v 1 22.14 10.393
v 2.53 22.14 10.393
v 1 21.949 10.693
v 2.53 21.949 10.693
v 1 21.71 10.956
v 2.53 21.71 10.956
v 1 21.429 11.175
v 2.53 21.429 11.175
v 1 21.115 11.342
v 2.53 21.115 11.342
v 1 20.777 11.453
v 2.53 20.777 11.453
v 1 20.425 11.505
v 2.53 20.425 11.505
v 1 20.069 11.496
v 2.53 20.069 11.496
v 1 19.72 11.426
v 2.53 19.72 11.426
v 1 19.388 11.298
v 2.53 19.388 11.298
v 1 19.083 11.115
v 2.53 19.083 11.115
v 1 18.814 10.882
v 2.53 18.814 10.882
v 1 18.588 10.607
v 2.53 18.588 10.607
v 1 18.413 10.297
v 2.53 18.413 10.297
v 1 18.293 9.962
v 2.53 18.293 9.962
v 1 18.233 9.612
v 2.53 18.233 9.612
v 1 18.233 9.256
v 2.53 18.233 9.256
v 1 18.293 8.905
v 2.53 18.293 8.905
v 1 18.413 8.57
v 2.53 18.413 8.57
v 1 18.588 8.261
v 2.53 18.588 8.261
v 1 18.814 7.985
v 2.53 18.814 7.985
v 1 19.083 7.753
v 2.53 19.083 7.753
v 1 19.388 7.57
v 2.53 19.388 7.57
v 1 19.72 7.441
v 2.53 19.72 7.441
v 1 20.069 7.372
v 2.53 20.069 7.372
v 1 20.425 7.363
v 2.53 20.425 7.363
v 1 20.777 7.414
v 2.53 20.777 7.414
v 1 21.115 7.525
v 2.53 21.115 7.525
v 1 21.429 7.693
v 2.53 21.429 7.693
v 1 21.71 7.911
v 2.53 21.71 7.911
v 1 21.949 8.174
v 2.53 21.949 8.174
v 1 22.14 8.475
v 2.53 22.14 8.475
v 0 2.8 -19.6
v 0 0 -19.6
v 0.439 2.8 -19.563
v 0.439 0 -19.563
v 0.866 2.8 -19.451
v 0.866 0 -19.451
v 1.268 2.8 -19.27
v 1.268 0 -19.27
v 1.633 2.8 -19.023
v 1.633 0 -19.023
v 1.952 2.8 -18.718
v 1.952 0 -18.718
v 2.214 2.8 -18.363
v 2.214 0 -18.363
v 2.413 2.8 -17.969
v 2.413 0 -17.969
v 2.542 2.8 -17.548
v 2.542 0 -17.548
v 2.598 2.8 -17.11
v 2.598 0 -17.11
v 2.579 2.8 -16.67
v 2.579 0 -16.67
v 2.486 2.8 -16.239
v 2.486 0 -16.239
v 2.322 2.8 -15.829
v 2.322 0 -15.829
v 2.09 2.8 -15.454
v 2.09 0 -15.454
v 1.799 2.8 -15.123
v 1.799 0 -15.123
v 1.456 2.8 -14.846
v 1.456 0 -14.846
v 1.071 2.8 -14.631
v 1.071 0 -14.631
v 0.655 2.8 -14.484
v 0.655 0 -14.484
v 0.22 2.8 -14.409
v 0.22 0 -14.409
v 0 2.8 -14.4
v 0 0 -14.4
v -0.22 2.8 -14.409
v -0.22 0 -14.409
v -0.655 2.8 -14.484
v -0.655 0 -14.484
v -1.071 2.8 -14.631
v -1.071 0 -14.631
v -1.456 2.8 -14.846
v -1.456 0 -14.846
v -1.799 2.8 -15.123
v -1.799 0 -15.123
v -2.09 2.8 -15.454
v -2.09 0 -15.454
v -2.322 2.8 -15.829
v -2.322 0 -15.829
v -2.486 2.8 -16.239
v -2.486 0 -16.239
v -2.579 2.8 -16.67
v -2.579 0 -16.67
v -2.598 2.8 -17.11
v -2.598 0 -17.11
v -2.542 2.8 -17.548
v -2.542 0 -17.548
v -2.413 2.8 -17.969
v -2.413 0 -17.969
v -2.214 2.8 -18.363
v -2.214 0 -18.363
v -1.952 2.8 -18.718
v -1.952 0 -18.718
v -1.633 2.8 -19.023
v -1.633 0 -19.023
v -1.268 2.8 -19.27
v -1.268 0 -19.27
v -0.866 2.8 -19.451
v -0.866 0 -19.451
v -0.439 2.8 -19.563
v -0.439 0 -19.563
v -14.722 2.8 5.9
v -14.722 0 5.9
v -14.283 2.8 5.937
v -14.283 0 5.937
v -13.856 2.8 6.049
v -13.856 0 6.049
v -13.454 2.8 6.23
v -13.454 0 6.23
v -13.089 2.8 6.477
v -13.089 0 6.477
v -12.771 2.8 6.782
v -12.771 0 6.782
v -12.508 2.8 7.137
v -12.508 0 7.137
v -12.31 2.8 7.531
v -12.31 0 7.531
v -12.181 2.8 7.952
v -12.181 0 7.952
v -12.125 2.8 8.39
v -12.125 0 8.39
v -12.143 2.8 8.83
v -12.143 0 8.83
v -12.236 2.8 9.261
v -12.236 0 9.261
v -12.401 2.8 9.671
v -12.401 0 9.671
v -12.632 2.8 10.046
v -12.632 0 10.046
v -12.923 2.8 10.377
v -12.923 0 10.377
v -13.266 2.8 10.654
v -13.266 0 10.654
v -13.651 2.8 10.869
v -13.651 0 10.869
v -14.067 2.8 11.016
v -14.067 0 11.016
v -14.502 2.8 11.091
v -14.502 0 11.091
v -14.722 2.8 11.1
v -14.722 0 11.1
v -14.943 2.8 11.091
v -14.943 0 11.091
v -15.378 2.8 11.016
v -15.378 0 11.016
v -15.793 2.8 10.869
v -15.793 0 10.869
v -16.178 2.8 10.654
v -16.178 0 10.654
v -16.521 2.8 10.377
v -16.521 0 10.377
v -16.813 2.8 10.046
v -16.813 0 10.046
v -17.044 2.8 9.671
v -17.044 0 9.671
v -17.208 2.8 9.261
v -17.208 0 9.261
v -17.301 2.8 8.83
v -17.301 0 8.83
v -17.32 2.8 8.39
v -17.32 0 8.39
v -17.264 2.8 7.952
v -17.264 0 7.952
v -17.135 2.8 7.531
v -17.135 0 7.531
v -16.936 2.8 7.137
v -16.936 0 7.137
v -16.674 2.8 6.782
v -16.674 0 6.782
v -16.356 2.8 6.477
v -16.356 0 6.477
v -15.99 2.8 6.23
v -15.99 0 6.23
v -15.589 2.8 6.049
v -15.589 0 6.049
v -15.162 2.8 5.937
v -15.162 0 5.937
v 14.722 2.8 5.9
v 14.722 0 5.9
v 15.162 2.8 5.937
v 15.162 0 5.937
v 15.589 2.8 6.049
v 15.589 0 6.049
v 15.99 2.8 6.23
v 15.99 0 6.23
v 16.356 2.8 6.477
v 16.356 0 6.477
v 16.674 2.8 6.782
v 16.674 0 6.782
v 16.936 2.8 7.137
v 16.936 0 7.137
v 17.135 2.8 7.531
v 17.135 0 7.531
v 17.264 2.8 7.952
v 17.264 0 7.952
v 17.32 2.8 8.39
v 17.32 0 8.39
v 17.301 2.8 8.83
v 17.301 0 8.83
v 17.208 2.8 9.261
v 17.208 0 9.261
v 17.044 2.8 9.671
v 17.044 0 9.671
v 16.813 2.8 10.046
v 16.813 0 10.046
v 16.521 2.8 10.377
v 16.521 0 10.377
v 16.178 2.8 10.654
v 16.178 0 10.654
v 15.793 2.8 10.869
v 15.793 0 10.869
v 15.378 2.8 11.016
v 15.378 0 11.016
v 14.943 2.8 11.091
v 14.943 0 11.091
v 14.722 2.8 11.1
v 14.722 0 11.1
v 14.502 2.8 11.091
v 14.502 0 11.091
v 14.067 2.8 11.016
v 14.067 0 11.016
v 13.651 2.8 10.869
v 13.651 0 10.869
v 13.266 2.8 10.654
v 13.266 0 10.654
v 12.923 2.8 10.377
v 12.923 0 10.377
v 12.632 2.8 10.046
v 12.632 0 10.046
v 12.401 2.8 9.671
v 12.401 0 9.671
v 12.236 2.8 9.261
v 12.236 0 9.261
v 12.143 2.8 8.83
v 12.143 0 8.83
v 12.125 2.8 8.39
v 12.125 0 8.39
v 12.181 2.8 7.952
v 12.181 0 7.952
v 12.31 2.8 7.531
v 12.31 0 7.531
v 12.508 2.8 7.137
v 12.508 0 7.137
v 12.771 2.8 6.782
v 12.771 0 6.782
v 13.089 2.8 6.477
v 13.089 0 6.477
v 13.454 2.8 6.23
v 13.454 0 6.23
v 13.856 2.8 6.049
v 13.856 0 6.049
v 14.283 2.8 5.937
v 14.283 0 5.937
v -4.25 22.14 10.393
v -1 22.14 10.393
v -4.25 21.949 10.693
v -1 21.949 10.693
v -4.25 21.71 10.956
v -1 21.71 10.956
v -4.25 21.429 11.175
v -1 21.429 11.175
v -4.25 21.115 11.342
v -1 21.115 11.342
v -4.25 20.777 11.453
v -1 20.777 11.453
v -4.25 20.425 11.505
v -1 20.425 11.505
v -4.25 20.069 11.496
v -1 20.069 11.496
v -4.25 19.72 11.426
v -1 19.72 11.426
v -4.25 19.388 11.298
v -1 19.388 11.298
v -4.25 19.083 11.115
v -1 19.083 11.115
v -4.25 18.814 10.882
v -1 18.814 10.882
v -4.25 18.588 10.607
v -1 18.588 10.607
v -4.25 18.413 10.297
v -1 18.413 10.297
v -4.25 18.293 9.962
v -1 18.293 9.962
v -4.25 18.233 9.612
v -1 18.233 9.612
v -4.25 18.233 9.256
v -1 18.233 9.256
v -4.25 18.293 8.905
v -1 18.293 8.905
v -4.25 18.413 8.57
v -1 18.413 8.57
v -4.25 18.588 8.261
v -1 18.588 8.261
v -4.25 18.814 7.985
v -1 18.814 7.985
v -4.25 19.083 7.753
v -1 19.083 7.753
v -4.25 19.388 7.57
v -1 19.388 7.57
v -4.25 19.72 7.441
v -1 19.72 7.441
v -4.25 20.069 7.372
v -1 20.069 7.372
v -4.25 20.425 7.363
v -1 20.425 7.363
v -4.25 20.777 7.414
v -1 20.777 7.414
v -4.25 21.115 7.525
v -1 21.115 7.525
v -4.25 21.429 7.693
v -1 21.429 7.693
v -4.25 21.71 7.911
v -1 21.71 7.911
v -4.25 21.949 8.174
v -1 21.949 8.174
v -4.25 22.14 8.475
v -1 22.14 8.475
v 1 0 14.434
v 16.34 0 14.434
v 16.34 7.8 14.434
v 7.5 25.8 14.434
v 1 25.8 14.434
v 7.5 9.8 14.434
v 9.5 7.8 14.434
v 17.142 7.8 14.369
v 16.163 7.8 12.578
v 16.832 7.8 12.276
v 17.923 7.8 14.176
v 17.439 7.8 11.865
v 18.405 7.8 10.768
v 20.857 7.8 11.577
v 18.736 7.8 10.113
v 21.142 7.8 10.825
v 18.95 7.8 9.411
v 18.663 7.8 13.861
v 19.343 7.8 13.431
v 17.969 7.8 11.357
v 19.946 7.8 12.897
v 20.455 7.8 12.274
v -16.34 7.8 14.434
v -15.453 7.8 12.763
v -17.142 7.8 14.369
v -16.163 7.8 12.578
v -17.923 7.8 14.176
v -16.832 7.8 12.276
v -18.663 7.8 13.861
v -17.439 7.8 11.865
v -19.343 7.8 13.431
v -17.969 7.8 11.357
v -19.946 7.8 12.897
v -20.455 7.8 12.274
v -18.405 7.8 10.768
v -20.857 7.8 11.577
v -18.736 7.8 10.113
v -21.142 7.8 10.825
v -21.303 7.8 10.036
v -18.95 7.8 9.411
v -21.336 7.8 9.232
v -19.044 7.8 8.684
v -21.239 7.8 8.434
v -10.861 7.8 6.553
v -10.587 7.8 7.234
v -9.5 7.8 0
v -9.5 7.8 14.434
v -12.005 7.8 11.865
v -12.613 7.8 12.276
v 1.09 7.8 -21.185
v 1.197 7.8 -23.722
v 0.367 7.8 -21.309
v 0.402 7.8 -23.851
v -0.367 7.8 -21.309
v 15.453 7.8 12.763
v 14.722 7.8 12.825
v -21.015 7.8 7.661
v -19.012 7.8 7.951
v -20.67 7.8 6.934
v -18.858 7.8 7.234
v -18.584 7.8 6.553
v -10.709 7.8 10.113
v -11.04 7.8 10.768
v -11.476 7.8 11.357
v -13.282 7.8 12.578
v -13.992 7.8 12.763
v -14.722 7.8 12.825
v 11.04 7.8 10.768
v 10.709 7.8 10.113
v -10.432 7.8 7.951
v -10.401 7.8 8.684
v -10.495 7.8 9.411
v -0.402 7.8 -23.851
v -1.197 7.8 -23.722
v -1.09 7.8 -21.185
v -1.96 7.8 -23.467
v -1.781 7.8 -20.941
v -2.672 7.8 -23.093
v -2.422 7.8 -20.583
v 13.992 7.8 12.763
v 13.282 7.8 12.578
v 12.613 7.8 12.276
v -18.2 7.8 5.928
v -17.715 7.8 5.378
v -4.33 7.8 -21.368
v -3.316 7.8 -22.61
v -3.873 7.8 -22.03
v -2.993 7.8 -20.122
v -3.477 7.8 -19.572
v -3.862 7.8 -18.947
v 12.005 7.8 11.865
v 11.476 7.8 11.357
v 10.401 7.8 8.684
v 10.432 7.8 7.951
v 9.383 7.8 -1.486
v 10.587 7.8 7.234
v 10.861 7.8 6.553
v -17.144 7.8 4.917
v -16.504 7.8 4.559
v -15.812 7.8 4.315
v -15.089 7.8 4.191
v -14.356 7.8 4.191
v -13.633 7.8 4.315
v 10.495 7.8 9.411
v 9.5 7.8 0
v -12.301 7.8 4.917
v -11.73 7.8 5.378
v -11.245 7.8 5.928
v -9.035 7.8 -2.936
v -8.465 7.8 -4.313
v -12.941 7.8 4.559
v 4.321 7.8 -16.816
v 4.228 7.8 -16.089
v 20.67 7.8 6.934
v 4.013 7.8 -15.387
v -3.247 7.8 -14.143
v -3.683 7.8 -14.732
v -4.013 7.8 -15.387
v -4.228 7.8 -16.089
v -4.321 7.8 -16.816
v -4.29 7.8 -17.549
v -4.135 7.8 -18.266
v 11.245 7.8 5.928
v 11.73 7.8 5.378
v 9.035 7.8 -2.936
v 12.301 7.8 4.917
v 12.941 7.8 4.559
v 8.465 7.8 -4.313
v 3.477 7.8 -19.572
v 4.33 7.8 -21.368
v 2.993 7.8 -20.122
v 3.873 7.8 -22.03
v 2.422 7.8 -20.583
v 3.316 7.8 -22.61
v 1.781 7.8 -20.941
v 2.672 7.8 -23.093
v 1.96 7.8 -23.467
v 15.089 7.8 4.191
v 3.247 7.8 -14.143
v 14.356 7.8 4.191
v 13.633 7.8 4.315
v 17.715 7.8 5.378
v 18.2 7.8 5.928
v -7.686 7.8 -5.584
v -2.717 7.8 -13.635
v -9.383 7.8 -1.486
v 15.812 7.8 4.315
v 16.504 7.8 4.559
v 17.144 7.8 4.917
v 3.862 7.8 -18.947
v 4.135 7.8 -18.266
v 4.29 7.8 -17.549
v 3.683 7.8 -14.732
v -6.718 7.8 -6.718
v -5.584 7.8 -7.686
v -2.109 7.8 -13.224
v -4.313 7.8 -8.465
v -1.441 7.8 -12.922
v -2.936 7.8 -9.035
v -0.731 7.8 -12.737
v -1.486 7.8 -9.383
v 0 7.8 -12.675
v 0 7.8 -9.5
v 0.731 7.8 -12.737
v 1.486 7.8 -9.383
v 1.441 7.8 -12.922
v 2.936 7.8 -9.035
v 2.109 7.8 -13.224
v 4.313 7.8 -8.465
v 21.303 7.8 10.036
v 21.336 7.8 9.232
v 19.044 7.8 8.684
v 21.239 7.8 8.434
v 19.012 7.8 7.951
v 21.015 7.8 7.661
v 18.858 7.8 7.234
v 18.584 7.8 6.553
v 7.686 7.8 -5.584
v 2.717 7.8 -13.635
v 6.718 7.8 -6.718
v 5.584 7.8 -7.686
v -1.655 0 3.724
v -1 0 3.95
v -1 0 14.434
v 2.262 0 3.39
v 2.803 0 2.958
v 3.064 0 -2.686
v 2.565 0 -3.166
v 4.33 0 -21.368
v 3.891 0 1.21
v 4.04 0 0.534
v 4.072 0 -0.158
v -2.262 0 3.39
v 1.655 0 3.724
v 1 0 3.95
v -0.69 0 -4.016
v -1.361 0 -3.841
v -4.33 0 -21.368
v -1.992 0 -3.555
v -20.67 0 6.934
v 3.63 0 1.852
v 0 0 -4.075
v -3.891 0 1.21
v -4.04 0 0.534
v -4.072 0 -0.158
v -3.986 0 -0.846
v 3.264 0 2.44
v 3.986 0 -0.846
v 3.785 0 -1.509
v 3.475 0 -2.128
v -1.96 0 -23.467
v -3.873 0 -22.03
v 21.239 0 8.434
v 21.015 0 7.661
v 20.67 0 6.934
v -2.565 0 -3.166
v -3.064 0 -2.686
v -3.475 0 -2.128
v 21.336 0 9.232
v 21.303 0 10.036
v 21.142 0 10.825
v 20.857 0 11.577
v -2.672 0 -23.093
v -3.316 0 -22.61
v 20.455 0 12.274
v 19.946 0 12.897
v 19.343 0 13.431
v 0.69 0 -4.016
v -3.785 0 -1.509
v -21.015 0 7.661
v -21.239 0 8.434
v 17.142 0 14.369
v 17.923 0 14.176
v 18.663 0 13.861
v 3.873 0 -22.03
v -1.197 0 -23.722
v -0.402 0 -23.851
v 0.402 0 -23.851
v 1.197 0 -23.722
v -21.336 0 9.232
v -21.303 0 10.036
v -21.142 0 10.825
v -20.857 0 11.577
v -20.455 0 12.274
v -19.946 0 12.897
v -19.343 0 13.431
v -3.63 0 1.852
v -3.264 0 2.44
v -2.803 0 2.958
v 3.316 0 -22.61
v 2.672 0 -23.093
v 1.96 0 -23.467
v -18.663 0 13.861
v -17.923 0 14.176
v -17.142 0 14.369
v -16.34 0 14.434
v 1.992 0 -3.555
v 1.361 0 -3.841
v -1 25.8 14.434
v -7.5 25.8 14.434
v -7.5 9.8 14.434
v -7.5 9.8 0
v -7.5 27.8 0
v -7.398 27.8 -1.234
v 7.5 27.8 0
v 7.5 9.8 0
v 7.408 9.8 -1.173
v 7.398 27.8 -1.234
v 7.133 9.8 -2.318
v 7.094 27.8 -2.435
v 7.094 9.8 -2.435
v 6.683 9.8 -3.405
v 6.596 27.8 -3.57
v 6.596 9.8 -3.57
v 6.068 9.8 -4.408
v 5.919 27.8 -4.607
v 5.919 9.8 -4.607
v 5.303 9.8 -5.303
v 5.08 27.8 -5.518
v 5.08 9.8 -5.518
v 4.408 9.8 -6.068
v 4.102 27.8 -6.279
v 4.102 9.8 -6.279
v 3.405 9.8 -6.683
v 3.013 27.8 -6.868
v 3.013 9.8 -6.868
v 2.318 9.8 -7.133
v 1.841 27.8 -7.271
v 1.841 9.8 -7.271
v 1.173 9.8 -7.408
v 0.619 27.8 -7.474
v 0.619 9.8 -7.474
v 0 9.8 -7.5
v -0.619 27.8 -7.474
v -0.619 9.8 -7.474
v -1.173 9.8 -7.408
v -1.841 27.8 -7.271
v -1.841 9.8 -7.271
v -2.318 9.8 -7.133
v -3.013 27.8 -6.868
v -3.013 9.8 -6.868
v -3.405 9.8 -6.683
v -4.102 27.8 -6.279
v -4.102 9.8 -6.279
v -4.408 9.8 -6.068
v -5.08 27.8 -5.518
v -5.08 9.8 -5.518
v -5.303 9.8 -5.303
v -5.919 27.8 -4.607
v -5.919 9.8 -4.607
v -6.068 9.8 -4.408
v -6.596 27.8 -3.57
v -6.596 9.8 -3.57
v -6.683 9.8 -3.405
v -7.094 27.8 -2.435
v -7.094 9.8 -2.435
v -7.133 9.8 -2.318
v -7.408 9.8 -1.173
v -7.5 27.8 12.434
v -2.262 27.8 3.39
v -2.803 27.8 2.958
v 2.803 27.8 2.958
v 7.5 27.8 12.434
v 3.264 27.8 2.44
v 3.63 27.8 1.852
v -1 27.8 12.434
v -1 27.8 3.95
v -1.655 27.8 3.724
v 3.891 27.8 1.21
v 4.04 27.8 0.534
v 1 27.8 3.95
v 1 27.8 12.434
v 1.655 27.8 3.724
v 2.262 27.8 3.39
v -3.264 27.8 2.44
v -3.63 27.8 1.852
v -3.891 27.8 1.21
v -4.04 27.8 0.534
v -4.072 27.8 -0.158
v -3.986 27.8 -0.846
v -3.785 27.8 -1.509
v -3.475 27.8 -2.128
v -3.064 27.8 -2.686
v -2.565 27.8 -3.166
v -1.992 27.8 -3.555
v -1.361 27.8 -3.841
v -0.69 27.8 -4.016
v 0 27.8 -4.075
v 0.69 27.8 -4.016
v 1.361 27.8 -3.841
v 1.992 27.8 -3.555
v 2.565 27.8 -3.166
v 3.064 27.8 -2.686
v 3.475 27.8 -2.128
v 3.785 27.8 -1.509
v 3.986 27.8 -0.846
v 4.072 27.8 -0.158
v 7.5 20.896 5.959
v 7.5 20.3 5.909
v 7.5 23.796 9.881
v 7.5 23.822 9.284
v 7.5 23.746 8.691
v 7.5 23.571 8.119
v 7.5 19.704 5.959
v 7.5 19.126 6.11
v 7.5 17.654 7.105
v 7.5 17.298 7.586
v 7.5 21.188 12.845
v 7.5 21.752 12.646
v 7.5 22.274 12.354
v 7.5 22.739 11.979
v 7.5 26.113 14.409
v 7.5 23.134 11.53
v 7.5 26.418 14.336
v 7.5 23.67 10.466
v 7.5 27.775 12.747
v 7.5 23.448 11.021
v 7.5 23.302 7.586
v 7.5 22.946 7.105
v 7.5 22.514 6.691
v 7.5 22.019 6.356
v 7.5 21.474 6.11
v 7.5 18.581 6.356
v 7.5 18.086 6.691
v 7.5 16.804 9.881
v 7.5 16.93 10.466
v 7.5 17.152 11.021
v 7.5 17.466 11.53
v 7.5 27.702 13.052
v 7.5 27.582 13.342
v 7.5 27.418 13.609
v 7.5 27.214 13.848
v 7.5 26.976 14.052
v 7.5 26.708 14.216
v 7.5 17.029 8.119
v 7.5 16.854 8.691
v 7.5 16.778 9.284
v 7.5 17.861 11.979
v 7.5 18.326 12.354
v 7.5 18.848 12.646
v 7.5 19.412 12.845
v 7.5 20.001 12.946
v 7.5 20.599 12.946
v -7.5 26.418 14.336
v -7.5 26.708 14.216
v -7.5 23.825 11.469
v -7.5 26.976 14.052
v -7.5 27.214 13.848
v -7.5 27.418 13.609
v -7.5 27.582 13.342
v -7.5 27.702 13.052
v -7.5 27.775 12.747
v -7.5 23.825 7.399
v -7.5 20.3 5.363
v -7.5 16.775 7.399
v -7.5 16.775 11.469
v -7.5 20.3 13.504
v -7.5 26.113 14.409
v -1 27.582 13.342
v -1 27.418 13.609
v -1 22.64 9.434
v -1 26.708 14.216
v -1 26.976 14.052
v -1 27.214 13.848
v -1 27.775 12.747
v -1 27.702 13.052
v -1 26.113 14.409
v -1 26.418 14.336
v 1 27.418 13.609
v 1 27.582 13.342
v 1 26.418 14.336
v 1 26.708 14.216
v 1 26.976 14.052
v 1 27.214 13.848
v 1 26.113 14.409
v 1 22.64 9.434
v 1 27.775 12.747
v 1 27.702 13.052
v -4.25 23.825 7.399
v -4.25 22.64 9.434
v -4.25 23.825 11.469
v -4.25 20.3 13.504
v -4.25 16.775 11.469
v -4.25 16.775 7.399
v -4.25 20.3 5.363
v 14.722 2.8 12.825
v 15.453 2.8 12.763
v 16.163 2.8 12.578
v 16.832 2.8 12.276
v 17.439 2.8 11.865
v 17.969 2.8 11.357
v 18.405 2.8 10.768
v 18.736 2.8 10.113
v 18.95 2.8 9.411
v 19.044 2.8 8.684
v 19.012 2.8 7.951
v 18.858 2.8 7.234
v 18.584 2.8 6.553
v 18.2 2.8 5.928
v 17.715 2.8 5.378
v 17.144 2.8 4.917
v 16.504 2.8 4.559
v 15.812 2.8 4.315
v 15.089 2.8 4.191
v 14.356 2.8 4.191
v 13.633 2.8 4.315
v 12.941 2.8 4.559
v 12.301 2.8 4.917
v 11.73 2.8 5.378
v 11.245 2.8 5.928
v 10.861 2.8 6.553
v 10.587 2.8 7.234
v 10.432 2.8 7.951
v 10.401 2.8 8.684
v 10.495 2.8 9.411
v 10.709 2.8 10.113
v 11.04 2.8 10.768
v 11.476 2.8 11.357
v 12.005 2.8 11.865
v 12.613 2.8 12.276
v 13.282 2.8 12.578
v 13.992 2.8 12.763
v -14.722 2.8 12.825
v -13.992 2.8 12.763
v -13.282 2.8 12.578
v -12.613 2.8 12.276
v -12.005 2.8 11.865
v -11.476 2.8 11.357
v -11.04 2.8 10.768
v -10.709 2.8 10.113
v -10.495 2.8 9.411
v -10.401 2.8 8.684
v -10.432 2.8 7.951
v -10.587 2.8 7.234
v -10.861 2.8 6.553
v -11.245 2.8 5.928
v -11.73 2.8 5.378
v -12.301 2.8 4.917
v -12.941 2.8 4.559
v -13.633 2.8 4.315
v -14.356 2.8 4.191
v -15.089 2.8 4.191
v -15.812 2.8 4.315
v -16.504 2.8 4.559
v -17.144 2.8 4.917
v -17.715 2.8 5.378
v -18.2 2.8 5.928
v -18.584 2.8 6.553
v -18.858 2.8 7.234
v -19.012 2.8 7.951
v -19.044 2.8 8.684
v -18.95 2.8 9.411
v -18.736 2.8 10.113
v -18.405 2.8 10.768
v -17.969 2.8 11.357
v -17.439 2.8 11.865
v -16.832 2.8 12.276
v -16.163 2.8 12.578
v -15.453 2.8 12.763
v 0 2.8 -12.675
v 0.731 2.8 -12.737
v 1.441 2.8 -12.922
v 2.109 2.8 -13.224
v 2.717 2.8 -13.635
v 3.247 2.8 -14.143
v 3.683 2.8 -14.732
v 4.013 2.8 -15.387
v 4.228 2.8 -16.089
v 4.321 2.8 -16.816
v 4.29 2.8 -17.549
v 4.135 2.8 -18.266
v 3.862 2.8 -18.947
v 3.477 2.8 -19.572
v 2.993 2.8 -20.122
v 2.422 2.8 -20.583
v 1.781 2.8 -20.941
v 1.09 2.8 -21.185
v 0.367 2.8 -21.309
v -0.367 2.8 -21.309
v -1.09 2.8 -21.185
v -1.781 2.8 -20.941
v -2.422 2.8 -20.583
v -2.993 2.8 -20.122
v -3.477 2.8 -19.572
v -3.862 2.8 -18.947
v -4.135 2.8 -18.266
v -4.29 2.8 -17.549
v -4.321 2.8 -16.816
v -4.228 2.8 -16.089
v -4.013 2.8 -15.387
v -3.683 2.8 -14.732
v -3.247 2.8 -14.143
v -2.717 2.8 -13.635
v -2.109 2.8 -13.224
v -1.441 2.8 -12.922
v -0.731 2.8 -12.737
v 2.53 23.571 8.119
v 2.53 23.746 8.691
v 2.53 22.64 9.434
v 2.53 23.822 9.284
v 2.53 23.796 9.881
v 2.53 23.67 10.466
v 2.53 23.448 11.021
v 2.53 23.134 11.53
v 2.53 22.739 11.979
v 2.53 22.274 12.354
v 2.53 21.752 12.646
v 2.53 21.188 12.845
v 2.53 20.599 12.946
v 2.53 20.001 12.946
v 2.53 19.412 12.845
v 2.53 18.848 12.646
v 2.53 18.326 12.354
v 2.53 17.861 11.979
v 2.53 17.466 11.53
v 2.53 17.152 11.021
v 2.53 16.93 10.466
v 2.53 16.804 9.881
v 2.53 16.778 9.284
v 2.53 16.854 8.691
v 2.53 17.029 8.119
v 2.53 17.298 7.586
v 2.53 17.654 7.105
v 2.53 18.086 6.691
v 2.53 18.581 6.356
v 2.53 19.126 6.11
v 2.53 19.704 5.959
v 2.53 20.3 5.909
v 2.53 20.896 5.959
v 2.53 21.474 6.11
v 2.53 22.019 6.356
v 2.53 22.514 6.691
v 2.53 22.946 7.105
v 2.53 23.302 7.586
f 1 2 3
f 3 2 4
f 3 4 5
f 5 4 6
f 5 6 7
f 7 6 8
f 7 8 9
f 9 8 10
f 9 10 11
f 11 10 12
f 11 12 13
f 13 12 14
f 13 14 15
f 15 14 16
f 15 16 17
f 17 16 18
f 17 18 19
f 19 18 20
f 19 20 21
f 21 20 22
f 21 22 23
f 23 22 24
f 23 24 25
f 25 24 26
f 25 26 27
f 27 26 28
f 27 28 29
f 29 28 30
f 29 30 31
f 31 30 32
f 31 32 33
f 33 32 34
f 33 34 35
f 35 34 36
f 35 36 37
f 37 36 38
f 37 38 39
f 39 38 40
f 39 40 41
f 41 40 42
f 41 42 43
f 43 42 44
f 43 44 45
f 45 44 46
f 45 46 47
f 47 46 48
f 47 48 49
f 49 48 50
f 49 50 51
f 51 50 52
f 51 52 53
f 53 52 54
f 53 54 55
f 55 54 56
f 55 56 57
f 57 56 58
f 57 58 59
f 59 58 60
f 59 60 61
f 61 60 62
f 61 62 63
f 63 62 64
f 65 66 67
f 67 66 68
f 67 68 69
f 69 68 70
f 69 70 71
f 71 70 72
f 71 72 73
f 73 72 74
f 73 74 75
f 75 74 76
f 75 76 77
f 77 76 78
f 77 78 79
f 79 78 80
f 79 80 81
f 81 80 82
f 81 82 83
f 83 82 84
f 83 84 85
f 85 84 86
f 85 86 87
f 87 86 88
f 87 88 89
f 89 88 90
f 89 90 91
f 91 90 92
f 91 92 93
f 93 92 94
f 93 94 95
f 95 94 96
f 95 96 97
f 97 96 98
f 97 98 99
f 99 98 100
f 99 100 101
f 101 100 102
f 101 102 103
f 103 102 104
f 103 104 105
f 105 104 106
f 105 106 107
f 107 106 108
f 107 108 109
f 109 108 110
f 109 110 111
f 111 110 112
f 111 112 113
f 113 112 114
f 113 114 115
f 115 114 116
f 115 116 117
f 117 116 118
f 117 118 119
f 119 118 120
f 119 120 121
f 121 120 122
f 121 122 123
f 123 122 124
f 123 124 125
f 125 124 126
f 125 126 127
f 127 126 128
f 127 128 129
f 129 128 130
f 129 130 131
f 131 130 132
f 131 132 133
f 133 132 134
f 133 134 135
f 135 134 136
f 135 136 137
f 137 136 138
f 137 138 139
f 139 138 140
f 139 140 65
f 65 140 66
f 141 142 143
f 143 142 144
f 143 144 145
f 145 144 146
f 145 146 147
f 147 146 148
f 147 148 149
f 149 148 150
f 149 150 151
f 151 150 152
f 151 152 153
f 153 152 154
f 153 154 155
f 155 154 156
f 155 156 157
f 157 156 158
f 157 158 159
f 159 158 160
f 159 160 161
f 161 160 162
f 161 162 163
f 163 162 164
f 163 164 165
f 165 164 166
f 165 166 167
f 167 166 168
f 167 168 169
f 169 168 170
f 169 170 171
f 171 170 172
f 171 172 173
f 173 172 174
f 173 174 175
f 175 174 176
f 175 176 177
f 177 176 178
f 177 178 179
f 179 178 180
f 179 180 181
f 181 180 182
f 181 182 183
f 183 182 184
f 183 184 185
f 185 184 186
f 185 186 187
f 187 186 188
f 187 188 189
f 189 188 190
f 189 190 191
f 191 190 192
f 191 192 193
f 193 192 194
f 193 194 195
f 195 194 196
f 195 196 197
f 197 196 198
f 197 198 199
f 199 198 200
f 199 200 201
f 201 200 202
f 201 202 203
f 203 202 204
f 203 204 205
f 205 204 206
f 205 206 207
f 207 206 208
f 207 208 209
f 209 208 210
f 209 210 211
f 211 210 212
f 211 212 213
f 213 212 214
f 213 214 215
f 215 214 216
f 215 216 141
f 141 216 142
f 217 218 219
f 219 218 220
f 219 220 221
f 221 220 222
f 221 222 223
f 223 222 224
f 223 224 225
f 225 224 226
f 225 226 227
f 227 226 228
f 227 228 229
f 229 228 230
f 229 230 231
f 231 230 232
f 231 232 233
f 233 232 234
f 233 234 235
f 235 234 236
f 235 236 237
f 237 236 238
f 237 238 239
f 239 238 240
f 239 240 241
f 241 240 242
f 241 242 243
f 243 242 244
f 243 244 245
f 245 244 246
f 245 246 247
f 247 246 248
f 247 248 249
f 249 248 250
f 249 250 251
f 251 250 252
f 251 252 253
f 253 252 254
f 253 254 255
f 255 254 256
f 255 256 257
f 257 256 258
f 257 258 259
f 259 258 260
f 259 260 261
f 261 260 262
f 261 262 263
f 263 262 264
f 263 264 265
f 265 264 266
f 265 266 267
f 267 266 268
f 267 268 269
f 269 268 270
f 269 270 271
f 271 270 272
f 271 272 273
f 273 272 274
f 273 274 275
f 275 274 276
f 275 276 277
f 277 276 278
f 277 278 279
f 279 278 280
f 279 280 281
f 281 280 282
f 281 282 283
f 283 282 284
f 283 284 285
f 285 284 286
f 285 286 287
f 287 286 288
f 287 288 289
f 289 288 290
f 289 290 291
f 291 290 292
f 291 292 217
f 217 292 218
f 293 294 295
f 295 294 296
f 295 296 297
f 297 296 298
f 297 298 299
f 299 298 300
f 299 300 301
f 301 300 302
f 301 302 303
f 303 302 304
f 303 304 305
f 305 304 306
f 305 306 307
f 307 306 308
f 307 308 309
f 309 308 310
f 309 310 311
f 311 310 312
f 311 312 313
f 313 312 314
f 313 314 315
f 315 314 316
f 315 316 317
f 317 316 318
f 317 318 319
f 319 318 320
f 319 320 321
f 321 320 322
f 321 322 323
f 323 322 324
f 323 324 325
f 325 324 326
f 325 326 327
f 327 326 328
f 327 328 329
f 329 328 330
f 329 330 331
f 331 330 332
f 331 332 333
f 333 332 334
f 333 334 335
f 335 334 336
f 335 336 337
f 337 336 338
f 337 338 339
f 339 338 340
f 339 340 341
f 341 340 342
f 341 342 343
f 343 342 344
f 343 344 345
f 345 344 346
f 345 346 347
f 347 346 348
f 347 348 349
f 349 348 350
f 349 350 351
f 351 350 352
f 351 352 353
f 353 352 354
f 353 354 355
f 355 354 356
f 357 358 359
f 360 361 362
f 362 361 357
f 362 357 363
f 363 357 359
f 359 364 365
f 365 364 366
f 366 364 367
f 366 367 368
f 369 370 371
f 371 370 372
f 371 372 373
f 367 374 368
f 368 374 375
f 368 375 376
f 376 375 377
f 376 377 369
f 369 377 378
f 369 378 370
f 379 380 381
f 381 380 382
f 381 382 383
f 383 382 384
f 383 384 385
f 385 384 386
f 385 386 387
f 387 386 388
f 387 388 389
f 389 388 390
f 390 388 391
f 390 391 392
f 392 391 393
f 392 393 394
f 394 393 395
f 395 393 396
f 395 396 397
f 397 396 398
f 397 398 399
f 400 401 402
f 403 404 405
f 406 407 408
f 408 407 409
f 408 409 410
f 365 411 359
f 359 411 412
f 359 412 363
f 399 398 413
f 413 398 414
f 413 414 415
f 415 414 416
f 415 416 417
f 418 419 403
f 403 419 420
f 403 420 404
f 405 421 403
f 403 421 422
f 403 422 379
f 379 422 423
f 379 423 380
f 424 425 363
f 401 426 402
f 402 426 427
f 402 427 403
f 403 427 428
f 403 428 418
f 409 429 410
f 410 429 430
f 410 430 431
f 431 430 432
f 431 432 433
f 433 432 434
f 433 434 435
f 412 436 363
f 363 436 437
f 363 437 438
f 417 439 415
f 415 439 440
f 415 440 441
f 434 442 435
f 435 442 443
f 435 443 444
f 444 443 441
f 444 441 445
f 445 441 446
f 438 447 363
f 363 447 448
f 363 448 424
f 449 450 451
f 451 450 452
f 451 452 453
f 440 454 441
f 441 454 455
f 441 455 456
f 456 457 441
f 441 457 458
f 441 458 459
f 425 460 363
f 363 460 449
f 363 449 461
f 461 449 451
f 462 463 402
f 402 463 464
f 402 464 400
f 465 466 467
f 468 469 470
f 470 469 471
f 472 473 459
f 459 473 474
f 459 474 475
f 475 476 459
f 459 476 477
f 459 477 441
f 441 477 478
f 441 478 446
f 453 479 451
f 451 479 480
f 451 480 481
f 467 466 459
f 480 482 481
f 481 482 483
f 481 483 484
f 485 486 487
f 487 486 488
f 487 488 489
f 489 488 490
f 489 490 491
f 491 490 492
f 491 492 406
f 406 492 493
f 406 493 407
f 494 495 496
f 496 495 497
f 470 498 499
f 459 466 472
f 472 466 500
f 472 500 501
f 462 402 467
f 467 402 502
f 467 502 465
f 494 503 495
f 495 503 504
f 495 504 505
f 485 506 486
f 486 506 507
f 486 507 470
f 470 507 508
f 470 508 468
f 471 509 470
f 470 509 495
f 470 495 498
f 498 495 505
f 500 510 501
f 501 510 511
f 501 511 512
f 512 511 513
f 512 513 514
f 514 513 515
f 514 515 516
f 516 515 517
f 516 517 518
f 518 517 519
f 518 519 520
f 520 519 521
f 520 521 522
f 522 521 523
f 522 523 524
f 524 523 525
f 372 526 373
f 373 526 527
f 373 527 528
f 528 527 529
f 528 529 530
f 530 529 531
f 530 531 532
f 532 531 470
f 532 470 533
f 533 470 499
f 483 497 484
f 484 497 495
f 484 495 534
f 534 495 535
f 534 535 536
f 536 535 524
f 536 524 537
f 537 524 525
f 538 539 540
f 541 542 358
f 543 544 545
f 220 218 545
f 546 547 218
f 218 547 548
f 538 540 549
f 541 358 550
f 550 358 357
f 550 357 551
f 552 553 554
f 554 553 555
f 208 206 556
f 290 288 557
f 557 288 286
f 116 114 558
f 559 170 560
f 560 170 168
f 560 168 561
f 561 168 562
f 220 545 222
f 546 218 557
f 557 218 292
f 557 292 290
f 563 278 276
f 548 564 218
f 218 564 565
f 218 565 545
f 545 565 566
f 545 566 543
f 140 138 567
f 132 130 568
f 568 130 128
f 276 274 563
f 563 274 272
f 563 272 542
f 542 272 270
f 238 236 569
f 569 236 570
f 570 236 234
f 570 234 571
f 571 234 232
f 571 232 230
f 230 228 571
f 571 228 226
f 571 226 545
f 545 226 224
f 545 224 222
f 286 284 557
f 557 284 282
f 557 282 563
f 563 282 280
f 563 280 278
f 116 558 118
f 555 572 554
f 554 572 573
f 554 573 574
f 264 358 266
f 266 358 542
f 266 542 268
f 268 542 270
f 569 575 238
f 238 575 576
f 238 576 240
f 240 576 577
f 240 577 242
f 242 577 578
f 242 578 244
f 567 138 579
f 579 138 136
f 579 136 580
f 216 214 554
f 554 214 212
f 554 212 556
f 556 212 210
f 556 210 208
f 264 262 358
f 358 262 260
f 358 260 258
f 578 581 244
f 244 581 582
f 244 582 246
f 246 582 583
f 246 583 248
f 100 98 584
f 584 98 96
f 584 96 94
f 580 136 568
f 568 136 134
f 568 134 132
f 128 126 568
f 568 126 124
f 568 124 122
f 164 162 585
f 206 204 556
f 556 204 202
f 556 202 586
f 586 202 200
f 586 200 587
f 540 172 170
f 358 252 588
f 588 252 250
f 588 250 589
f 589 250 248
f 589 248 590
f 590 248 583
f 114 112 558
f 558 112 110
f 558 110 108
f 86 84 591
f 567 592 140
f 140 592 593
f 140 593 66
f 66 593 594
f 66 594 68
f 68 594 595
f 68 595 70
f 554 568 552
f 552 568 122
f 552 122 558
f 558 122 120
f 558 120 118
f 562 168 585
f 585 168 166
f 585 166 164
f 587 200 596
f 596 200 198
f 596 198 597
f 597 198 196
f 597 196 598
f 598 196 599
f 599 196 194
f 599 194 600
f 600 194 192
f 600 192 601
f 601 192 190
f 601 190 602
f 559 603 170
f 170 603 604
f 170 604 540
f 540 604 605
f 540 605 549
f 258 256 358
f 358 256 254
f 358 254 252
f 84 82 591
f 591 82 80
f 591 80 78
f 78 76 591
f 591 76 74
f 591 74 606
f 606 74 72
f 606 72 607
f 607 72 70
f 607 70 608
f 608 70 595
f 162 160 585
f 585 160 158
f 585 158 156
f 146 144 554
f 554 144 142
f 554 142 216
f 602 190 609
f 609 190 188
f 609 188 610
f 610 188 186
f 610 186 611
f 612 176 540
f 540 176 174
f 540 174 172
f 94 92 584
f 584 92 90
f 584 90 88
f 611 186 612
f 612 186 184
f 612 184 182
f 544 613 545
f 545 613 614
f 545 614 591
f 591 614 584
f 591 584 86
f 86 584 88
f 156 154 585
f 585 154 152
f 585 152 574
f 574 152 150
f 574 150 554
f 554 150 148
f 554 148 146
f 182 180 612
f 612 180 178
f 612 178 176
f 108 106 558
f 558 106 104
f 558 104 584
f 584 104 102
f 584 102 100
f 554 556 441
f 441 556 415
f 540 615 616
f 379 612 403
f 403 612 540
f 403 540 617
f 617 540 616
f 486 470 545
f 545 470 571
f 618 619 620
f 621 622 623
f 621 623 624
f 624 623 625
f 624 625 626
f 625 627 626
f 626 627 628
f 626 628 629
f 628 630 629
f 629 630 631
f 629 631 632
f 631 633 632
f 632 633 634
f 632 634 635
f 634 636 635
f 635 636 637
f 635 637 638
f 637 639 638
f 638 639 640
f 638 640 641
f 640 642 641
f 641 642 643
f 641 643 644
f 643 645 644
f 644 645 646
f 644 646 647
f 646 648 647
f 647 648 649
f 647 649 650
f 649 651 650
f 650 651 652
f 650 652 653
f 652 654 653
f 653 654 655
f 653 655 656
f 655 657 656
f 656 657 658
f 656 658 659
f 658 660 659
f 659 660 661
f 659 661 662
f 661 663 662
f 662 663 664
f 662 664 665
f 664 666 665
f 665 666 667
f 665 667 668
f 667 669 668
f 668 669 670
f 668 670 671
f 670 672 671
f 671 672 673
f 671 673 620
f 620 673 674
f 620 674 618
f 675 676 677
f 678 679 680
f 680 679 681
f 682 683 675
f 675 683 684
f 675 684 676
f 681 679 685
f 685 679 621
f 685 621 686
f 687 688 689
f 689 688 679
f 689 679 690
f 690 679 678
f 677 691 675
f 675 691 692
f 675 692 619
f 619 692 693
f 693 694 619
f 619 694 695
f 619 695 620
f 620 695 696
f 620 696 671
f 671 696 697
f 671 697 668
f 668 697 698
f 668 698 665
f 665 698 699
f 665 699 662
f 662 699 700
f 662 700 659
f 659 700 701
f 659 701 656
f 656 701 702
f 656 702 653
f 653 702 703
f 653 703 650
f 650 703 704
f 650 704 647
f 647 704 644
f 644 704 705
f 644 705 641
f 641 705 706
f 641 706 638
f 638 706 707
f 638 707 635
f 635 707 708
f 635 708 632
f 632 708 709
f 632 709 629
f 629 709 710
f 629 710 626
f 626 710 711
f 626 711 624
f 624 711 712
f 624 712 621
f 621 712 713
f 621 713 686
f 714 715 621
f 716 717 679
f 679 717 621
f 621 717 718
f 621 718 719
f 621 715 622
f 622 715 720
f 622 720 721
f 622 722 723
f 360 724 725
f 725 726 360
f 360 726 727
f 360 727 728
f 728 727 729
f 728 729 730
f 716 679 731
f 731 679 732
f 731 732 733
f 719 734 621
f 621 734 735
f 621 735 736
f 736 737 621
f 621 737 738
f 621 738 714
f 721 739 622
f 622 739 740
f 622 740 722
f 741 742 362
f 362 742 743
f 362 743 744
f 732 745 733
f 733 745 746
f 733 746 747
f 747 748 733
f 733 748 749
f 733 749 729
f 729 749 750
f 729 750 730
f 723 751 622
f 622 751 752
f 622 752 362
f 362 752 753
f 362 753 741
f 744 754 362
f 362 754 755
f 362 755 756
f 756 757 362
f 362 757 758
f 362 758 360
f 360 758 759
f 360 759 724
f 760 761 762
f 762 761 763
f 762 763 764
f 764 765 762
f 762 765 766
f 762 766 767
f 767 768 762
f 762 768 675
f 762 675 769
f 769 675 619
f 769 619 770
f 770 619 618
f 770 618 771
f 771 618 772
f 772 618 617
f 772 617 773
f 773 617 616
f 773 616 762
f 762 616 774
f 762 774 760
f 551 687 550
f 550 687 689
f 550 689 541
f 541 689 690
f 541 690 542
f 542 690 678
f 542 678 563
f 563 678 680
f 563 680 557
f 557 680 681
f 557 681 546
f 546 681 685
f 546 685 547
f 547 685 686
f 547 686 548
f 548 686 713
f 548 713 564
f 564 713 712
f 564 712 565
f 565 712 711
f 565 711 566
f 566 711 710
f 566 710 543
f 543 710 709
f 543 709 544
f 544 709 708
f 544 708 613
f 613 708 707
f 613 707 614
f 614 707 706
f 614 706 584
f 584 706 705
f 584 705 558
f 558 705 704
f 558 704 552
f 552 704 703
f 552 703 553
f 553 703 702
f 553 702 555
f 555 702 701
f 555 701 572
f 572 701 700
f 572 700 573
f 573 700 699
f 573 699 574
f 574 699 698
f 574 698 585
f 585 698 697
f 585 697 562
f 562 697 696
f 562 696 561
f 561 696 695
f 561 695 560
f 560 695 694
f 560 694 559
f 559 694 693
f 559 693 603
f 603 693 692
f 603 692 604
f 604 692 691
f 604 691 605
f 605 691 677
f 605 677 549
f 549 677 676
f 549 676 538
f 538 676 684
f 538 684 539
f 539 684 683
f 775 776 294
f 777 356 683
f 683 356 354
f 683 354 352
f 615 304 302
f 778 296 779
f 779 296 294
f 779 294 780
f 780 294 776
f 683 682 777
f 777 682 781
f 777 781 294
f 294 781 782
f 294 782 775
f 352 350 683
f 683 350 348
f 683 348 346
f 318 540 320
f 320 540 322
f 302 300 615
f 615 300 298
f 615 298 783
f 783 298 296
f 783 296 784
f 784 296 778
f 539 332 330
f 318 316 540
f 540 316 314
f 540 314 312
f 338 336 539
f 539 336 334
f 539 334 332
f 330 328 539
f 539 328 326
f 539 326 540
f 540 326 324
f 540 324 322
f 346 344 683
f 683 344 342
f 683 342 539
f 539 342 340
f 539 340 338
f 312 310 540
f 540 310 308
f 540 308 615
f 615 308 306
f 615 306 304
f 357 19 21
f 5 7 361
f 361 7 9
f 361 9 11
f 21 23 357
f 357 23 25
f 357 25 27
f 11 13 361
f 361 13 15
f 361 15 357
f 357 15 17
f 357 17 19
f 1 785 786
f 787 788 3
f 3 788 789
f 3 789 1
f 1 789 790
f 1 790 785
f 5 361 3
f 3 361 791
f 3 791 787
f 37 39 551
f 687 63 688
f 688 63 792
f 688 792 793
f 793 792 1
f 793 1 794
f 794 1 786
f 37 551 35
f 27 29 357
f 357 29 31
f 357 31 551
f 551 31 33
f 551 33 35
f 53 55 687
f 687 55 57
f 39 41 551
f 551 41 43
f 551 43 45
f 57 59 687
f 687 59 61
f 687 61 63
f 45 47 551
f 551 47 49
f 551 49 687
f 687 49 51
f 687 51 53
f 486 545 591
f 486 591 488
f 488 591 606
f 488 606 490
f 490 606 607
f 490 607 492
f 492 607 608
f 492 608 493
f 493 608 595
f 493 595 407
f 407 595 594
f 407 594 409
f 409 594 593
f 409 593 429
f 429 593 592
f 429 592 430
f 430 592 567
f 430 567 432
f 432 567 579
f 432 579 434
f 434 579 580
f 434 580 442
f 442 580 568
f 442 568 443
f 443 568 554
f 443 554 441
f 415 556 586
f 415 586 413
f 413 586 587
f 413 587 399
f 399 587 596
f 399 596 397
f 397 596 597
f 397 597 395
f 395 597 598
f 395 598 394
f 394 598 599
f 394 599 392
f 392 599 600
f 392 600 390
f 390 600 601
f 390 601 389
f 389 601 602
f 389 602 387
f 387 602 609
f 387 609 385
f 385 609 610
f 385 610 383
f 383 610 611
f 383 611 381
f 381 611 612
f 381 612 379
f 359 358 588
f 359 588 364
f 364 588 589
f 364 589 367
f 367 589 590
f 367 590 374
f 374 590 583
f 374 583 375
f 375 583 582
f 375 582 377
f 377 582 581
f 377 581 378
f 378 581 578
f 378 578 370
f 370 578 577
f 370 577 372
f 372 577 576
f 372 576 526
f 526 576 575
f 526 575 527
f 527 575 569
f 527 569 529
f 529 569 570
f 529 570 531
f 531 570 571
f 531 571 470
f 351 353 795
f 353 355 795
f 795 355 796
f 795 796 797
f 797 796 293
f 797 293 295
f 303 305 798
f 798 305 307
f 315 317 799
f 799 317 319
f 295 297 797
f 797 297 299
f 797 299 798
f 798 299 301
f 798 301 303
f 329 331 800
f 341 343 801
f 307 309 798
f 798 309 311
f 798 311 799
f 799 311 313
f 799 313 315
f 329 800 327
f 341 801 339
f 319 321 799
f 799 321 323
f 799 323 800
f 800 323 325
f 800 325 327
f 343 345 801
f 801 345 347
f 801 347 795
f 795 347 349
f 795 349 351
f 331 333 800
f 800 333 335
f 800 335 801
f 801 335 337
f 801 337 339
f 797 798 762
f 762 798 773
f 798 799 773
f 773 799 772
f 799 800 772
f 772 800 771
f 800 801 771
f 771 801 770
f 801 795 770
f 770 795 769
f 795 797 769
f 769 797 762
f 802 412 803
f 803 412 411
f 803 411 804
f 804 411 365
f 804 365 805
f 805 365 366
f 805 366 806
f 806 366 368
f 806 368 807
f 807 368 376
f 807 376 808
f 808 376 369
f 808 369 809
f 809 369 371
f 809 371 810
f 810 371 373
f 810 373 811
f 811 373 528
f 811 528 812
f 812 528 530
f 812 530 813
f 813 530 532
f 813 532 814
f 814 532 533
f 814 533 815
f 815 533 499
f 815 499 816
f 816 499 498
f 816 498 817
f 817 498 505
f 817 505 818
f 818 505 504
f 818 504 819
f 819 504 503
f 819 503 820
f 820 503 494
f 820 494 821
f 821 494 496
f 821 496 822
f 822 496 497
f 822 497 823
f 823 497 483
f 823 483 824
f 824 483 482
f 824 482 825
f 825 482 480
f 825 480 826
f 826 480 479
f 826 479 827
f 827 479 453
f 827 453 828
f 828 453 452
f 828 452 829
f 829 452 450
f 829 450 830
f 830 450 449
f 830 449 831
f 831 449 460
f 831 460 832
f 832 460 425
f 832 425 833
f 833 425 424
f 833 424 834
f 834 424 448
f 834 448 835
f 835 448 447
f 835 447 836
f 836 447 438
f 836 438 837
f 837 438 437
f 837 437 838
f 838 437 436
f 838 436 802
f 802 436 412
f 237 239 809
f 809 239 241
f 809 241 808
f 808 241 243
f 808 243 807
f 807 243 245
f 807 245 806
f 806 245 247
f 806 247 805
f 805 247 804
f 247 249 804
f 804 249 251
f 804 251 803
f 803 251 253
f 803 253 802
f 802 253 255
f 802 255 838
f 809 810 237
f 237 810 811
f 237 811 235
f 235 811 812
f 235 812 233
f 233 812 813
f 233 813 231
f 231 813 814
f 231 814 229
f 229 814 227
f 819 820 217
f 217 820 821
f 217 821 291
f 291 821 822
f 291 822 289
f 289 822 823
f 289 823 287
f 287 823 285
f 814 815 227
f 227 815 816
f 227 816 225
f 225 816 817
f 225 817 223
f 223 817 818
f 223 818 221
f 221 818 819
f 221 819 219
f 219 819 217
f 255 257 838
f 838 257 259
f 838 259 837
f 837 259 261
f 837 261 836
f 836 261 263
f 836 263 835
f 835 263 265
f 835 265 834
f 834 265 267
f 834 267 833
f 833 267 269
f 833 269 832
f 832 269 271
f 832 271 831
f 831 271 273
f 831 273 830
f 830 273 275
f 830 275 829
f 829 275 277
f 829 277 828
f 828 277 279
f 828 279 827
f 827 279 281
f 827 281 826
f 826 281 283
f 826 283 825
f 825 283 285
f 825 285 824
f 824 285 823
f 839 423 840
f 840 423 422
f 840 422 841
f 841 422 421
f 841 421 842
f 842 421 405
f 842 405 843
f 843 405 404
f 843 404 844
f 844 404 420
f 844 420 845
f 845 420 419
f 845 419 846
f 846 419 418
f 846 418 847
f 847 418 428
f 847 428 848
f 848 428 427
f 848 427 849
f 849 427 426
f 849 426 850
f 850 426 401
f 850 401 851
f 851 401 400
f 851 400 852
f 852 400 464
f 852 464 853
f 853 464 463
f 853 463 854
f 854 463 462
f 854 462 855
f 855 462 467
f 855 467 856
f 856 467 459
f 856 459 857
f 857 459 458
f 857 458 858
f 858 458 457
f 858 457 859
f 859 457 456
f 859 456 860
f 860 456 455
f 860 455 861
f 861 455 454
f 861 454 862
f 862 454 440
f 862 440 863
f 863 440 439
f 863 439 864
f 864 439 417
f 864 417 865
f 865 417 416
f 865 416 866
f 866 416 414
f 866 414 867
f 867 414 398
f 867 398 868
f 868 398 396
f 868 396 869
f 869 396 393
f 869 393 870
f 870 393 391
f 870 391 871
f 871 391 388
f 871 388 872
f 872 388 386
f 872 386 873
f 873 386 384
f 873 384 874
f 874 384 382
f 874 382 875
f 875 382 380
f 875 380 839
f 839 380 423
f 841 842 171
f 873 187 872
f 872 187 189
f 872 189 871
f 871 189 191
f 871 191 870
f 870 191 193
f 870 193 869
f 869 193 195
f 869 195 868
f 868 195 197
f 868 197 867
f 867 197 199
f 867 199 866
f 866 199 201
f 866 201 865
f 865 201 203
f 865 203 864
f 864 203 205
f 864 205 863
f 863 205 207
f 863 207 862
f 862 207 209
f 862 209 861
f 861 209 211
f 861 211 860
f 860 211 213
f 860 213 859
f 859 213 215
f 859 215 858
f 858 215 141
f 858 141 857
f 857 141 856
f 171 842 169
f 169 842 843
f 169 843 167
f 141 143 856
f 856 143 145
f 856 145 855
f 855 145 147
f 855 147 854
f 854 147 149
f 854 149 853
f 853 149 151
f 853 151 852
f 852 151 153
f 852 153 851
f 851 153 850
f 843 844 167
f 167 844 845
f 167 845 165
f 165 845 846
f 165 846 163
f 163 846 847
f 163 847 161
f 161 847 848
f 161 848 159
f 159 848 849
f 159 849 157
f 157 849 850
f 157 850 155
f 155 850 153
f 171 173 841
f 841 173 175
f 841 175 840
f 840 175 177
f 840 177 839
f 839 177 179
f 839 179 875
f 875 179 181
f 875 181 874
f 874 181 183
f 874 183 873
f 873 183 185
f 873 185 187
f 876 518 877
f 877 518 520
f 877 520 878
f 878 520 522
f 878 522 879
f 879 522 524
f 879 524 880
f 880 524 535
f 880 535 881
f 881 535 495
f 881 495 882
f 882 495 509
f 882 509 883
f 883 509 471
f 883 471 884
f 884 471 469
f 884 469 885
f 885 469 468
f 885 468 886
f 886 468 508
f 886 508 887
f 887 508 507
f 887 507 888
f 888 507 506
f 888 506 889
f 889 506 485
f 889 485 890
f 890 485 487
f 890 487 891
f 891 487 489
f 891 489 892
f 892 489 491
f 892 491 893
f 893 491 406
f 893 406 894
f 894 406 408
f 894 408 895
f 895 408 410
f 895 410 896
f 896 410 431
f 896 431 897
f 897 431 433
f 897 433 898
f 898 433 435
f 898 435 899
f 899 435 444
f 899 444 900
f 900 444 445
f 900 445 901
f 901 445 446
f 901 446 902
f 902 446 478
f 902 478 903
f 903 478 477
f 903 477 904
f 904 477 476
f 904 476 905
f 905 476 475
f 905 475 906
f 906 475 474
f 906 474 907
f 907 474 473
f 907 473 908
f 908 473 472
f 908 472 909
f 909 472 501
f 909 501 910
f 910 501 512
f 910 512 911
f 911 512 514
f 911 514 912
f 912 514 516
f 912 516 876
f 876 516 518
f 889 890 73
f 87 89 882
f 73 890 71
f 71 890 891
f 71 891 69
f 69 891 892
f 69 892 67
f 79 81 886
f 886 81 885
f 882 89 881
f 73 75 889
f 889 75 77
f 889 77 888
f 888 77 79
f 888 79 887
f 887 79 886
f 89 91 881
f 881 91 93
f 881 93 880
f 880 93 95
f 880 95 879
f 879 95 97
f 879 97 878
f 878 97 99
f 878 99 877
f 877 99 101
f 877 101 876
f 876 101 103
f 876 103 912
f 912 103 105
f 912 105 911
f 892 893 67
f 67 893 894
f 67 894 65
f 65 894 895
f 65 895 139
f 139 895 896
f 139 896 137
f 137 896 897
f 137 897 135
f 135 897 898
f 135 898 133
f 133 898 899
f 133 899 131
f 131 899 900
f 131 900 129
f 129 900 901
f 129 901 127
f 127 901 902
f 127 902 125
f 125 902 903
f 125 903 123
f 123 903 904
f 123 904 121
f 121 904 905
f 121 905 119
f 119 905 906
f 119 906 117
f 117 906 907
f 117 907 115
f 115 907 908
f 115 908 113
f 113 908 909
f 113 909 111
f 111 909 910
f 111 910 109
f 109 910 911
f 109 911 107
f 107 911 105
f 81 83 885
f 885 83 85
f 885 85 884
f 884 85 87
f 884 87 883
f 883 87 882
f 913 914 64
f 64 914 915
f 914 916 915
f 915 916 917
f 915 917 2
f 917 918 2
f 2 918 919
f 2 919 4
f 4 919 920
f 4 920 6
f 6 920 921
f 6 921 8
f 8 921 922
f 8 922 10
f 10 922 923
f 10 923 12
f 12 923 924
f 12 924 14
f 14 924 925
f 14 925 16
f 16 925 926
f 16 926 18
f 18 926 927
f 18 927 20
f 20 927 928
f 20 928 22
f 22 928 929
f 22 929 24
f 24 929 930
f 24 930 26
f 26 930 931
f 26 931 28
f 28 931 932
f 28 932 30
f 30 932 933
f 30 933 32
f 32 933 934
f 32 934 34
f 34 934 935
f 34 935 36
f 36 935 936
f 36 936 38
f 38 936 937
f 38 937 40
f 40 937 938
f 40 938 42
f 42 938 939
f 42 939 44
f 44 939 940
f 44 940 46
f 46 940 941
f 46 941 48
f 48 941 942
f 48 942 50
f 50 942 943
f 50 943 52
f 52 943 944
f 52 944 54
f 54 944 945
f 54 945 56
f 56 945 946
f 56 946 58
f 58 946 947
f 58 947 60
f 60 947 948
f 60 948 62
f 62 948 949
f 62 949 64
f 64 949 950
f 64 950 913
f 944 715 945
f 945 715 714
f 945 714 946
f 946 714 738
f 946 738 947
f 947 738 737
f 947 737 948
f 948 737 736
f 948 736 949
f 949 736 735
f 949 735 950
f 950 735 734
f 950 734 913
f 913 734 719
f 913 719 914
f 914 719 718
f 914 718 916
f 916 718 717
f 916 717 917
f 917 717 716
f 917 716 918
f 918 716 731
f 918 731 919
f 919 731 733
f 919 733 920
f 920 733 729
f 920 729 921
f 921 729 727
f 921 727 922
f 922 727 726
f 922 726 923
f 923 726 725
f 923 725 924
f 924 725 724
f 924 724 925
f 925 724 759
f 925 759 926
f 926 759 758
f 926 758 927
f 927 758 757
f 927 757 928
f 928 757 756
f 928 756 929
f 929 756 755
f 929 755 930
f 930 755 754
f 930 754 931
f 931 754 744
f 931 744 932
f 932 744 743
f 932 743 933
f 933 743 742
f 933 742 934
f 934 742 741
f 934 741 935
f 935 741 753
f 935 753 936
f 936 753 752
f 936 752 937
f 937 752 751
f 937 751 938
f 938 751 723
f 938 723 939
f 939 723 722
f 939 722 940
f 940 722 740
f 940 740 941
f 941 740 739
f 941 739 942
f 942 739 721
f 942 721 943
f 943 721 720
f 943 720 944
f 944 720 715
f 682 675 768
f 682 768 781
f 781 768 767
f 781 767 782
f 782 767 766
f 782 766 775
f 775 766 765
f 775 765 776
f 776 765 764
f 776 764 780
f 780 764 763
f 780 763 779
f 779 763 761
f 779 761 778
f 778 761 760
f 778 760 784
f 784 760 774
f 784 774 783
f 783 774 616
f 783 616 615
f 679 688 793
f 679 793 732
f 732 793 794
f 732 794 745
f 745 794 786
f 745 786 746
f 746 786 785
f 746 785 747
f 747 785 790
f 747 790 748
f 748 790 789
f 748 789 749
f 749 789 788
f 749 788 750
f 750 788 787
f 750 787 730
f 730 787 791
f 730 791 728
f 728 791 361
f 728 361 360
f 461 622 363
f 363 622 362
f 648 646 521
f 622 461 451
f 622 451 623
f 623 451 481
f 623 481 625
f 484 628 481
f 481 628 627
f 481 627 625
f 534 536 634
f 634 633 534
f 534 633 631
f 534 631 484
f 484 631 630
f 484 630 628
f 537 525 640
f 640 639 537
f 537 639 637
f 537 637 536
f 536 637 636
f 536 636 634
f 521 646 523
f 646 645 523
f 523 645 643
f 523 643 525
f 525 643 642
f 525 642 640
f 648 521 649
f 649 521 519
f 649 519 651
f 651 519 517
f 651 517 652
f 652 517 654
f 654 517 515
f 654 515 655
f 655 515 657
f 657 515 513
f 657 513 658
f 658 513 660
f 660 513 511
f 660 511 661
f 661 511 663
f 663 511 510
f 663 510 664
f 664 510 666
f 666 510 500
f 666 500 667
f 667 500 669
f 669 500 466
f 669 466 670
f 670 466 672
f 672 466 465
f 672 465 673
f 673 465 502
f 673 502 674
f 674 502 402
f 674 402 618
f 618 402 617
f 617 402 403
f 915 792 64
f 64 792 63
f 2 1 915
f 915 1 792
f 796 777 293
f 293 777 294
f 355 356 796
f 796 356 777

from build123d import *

# Parameters (mm, degrees)
ESQUISSE5_R              = 2.6
BOSS_EXTRU_2_DEPTH       = 7.8
ESQUISSE6_R              = 7.5
BOSS_EXTRU_3_DEPTH       = 20
BOSS_EXTRU_6_START       = -20
BOSS_EXTRU_6_DEPTH       = 20
ESQUISSE14_R             = 4.075
ENL_V_MAT_EXTRU_4_DEPTH  = 48.235297536
ENL_V_MAT_EXTRU_5_DEPTH  = 48.235297536
CONG_2_R                 = 5
ESQUISSE17_R             = 2.075
ENL_V_MAT_EXTRU_6_DEPTH  = 47.62863011
ENL_V_MAT_EXTRU_7_DEPTH  = 3.25
ESQUISSE19_R             = 4.325
ENL_V_MAT_EXTRU_8_DEPTH  = 5
ESQUISSE20_R             = 3.525
ENL_V_MAT_EXTRU_9_DEPTH  = 4.97
CONG_3_R                 = 2
CHANFREIN2_SIZE          = 2
ENL_V_MAT_EXTRU_10_DEPTH = 44.729429119


with BuildPart() as part:
    # Esquisse5 → Boss.-Extru.2 (new body)
    with BuildSketch(Plane(origin=(0, 0, 0), x_dir=(1, 0, 0), z_dir=(0, 1, 0))):
        Polygon((-25, -14.43375673), (25, -14.43375673), (0, 28.867513459), align=None)
        with Locations(Location((0, 17, 0), (0, 0, 270))):
            Circle(ESQUISSE5_R, mode=Mode.SUBTRACT)
        with Locations(Location((-14.722431864, -8.5, 0), (0, 0, 270))):
            Circle(ESQUISSE5_R, mode=Mode.SUBTRACT)
        with Locations(Location((14.722431864, -8.5, 0), (0, 0, 270))):
            Circle(ESQUISSE5_R, mode=Mode.SUBTRACT)
    extrude(amount=BOSS_EXTRU_2_DEPTH)

    # Esquisse6 → Boss.-Extru.3 (add)
    with BuildSketch(Plane(origin=(0, 7.8, 0), x_dir=(1, 0, 0), z_dir=(0, 1, 0))):
        with Locations(Location((0, 0, 0), (0, 0, 270))):
            Circle(ESQUISSE6_R)
    extrude(amount=BOSS_EXTRU_3_DEPTH)

    # Esquisse13 → Boss.-Extru.6 (add)
    with BuildSketch(Plane(origin=(0, 27.8, 0), x_dir=(1, 0, 0), z_dir=(0, 1, 0)).offset(BOSS_EXTRU_6_START)):
        with BuildLine():
            Line((-7.5, 0), (-7.5, -14.43375673))
            Line((-7.5, -14.43375673), (7.5, -14.43375673))
            Line((7.5, -14.43375673), (7.5, 0))
            ThreePointArc((7.5, 0), (0, -7.5), (-7.5, 0))
        make_face()
    extrude(amount=BOSS_EXTRU_6_DEPTH)

    # Esquisse14 → Enlèv. mat.-Extru.4 (cut, through all)
    with BuildSketch(Plane(origin=(0, 27.8, 0), x_dir=(1, 0, 0), z_dir=(0, 1, 0))):
        with Locations(Location((0, 0, 0), (0, 0, 270))):
            Circle(ESQUISSE14_R)
    extrude(amount=-ENL_V_MAT_EXTRU_4_DEPTH, mode=Mode.SUBTRACT)

    # Esquisse15 → Enlèv. mat.-Extru.5 (cut, through all)
    with BuildSketch(Plane(origin=(0, 27.8, 0), x_dir=(1, 0, 0), z_dir=(0, 1, 0))):
        with BuildLine():
            Line((-1, -3.95039555), (-1, -14.43375673))
            Line((-1, -14.43375673), (1, -14.43375673))
            Line((1, -14.43375673), (1, -3.95039555))
            ThreePointArc((1, -3.95039555), (0, -4.075), (-1, -3.95039555))
        make_face()
    extrude(amount=-ENL_V_MAT_EXTRU_5_DEPTH, mode=Mode.SUBTRACT)

    # Congé2
    cong_2_edges = [part.edges().sort_by_distance(p)[0] for p in [
        (0, 3.9, -28.867513459),
        (25, 3.9, 14.43375673),
        (-25, 3.9, 14.43375673),
    ]]
    fillet(cong_2_edges, radius=CONG_2_R)

    # Esquisse17 → Enlèv. mat.-Extru.6 (cut, through all)
    with BuildSketch(Plane(origin=(7.5, 0, 0), x_dir=(0, 0, -1), z_dir=(1, 0, 0))):
        with Locations((-9.43375673, 20.3)):
            Circle(ESQUISSE17_R)
    extrude(amount=-ENL_V_MAT_EXTRU_6_DEPTH, mode=Mode.SUBTRACT)

    # Esquisse18 → Enlèv. mat.-Extru.7 (cut)
    with BuildSketch(Plane.ZY.offset(7.5)):
        Polygon((11.468916429, 23.825), (7.398597031, 23.825), (5.363437332, 20.3), (7.398597031, 16.775), (11.468916429, 16.775), (13.504076128, 20.3), align=None)
    extrude(amount=-ENL_V_MAT_EXTRU_7_DEPTH, mode=Mode.SUBTRACT)

    # Esquisse19 → Enlèv. mat.-Extru.8 (cut)
    with BuildSketch(Plane(origin=(0, 7.8, 0), x_dir=(1, 0, 0), z_dir=(0, 1, 0))):
        with Locations(Location((0, 17, 0), (0, 0, 270))):
            Circle(ESQUISSE19_R)
        with Locations(Location((14.722431864, -8.5, 0), (0, 0, 270))):
            Circle(ESQUISSE19_R)
        with Locations(Location((-14.722431864, -8.5, 0), (0, 0, 270))):
            Circle(ESQUISSE19_R)
    extrude(amount=-ENL_V_MAT_EXTRU_8_DEPTH, mode=Mode.SUBTRACT)

    # Esquisse20 → Enlèv. mat.-Extru.9 (cut)
    with BuildSketch(Plane(origin=(7.5, 0, 0), x_dir=(0, 0, -1), z_dir=(1, 0, 0))):
        with Locations((-9.43375673, 20.3)):
            Circle(ESQUISSE20_R)
    extrude(amount=-ENL_V_MAT_EXTRU_9_DEPTH, mode=Mode.SUBTRACT)

    # Congé3
    cong_3_edges = [part.edges().sort_by_distance(p)[0] for p in [
        (-4.25, 27.8, 14.43375673),
        (4.25, 27.8, 14.43375673),
    ]]
    fillet(cong_3_edges, radius=CONG_3_R)

    # Chanfrein2
    chanfrein2_edges = [part.edges().sort_by_distance(p)[0] for p in [
        (0, 7.8, -7.5),
        (7.5, 7.8, 7.216878365),
        (-7.5, 7.8, 7.216878365),
    ]]
    chamfer(chanfrein2_edges, length=CHANFREIN2_SIZE)

    # Esquisse21 → Enlèv. mat.-Extru.10 (cut, through all)
    with BuildSketch(Plane(origin=(2.53, 0, 0), x_dir=(0, 0, -1), z_dir=(1, 0, 0))):
        Polygon((-10.392924593, 22.140005981), (-8.474588866, 22.140005981), (-9.43375673, 22.640005981), align=None)
    extrude(amount=-ENL_V_MAT_EXTRU_10_DEPTH, mode=Mode.SUBTRACT)


solid = part.part
